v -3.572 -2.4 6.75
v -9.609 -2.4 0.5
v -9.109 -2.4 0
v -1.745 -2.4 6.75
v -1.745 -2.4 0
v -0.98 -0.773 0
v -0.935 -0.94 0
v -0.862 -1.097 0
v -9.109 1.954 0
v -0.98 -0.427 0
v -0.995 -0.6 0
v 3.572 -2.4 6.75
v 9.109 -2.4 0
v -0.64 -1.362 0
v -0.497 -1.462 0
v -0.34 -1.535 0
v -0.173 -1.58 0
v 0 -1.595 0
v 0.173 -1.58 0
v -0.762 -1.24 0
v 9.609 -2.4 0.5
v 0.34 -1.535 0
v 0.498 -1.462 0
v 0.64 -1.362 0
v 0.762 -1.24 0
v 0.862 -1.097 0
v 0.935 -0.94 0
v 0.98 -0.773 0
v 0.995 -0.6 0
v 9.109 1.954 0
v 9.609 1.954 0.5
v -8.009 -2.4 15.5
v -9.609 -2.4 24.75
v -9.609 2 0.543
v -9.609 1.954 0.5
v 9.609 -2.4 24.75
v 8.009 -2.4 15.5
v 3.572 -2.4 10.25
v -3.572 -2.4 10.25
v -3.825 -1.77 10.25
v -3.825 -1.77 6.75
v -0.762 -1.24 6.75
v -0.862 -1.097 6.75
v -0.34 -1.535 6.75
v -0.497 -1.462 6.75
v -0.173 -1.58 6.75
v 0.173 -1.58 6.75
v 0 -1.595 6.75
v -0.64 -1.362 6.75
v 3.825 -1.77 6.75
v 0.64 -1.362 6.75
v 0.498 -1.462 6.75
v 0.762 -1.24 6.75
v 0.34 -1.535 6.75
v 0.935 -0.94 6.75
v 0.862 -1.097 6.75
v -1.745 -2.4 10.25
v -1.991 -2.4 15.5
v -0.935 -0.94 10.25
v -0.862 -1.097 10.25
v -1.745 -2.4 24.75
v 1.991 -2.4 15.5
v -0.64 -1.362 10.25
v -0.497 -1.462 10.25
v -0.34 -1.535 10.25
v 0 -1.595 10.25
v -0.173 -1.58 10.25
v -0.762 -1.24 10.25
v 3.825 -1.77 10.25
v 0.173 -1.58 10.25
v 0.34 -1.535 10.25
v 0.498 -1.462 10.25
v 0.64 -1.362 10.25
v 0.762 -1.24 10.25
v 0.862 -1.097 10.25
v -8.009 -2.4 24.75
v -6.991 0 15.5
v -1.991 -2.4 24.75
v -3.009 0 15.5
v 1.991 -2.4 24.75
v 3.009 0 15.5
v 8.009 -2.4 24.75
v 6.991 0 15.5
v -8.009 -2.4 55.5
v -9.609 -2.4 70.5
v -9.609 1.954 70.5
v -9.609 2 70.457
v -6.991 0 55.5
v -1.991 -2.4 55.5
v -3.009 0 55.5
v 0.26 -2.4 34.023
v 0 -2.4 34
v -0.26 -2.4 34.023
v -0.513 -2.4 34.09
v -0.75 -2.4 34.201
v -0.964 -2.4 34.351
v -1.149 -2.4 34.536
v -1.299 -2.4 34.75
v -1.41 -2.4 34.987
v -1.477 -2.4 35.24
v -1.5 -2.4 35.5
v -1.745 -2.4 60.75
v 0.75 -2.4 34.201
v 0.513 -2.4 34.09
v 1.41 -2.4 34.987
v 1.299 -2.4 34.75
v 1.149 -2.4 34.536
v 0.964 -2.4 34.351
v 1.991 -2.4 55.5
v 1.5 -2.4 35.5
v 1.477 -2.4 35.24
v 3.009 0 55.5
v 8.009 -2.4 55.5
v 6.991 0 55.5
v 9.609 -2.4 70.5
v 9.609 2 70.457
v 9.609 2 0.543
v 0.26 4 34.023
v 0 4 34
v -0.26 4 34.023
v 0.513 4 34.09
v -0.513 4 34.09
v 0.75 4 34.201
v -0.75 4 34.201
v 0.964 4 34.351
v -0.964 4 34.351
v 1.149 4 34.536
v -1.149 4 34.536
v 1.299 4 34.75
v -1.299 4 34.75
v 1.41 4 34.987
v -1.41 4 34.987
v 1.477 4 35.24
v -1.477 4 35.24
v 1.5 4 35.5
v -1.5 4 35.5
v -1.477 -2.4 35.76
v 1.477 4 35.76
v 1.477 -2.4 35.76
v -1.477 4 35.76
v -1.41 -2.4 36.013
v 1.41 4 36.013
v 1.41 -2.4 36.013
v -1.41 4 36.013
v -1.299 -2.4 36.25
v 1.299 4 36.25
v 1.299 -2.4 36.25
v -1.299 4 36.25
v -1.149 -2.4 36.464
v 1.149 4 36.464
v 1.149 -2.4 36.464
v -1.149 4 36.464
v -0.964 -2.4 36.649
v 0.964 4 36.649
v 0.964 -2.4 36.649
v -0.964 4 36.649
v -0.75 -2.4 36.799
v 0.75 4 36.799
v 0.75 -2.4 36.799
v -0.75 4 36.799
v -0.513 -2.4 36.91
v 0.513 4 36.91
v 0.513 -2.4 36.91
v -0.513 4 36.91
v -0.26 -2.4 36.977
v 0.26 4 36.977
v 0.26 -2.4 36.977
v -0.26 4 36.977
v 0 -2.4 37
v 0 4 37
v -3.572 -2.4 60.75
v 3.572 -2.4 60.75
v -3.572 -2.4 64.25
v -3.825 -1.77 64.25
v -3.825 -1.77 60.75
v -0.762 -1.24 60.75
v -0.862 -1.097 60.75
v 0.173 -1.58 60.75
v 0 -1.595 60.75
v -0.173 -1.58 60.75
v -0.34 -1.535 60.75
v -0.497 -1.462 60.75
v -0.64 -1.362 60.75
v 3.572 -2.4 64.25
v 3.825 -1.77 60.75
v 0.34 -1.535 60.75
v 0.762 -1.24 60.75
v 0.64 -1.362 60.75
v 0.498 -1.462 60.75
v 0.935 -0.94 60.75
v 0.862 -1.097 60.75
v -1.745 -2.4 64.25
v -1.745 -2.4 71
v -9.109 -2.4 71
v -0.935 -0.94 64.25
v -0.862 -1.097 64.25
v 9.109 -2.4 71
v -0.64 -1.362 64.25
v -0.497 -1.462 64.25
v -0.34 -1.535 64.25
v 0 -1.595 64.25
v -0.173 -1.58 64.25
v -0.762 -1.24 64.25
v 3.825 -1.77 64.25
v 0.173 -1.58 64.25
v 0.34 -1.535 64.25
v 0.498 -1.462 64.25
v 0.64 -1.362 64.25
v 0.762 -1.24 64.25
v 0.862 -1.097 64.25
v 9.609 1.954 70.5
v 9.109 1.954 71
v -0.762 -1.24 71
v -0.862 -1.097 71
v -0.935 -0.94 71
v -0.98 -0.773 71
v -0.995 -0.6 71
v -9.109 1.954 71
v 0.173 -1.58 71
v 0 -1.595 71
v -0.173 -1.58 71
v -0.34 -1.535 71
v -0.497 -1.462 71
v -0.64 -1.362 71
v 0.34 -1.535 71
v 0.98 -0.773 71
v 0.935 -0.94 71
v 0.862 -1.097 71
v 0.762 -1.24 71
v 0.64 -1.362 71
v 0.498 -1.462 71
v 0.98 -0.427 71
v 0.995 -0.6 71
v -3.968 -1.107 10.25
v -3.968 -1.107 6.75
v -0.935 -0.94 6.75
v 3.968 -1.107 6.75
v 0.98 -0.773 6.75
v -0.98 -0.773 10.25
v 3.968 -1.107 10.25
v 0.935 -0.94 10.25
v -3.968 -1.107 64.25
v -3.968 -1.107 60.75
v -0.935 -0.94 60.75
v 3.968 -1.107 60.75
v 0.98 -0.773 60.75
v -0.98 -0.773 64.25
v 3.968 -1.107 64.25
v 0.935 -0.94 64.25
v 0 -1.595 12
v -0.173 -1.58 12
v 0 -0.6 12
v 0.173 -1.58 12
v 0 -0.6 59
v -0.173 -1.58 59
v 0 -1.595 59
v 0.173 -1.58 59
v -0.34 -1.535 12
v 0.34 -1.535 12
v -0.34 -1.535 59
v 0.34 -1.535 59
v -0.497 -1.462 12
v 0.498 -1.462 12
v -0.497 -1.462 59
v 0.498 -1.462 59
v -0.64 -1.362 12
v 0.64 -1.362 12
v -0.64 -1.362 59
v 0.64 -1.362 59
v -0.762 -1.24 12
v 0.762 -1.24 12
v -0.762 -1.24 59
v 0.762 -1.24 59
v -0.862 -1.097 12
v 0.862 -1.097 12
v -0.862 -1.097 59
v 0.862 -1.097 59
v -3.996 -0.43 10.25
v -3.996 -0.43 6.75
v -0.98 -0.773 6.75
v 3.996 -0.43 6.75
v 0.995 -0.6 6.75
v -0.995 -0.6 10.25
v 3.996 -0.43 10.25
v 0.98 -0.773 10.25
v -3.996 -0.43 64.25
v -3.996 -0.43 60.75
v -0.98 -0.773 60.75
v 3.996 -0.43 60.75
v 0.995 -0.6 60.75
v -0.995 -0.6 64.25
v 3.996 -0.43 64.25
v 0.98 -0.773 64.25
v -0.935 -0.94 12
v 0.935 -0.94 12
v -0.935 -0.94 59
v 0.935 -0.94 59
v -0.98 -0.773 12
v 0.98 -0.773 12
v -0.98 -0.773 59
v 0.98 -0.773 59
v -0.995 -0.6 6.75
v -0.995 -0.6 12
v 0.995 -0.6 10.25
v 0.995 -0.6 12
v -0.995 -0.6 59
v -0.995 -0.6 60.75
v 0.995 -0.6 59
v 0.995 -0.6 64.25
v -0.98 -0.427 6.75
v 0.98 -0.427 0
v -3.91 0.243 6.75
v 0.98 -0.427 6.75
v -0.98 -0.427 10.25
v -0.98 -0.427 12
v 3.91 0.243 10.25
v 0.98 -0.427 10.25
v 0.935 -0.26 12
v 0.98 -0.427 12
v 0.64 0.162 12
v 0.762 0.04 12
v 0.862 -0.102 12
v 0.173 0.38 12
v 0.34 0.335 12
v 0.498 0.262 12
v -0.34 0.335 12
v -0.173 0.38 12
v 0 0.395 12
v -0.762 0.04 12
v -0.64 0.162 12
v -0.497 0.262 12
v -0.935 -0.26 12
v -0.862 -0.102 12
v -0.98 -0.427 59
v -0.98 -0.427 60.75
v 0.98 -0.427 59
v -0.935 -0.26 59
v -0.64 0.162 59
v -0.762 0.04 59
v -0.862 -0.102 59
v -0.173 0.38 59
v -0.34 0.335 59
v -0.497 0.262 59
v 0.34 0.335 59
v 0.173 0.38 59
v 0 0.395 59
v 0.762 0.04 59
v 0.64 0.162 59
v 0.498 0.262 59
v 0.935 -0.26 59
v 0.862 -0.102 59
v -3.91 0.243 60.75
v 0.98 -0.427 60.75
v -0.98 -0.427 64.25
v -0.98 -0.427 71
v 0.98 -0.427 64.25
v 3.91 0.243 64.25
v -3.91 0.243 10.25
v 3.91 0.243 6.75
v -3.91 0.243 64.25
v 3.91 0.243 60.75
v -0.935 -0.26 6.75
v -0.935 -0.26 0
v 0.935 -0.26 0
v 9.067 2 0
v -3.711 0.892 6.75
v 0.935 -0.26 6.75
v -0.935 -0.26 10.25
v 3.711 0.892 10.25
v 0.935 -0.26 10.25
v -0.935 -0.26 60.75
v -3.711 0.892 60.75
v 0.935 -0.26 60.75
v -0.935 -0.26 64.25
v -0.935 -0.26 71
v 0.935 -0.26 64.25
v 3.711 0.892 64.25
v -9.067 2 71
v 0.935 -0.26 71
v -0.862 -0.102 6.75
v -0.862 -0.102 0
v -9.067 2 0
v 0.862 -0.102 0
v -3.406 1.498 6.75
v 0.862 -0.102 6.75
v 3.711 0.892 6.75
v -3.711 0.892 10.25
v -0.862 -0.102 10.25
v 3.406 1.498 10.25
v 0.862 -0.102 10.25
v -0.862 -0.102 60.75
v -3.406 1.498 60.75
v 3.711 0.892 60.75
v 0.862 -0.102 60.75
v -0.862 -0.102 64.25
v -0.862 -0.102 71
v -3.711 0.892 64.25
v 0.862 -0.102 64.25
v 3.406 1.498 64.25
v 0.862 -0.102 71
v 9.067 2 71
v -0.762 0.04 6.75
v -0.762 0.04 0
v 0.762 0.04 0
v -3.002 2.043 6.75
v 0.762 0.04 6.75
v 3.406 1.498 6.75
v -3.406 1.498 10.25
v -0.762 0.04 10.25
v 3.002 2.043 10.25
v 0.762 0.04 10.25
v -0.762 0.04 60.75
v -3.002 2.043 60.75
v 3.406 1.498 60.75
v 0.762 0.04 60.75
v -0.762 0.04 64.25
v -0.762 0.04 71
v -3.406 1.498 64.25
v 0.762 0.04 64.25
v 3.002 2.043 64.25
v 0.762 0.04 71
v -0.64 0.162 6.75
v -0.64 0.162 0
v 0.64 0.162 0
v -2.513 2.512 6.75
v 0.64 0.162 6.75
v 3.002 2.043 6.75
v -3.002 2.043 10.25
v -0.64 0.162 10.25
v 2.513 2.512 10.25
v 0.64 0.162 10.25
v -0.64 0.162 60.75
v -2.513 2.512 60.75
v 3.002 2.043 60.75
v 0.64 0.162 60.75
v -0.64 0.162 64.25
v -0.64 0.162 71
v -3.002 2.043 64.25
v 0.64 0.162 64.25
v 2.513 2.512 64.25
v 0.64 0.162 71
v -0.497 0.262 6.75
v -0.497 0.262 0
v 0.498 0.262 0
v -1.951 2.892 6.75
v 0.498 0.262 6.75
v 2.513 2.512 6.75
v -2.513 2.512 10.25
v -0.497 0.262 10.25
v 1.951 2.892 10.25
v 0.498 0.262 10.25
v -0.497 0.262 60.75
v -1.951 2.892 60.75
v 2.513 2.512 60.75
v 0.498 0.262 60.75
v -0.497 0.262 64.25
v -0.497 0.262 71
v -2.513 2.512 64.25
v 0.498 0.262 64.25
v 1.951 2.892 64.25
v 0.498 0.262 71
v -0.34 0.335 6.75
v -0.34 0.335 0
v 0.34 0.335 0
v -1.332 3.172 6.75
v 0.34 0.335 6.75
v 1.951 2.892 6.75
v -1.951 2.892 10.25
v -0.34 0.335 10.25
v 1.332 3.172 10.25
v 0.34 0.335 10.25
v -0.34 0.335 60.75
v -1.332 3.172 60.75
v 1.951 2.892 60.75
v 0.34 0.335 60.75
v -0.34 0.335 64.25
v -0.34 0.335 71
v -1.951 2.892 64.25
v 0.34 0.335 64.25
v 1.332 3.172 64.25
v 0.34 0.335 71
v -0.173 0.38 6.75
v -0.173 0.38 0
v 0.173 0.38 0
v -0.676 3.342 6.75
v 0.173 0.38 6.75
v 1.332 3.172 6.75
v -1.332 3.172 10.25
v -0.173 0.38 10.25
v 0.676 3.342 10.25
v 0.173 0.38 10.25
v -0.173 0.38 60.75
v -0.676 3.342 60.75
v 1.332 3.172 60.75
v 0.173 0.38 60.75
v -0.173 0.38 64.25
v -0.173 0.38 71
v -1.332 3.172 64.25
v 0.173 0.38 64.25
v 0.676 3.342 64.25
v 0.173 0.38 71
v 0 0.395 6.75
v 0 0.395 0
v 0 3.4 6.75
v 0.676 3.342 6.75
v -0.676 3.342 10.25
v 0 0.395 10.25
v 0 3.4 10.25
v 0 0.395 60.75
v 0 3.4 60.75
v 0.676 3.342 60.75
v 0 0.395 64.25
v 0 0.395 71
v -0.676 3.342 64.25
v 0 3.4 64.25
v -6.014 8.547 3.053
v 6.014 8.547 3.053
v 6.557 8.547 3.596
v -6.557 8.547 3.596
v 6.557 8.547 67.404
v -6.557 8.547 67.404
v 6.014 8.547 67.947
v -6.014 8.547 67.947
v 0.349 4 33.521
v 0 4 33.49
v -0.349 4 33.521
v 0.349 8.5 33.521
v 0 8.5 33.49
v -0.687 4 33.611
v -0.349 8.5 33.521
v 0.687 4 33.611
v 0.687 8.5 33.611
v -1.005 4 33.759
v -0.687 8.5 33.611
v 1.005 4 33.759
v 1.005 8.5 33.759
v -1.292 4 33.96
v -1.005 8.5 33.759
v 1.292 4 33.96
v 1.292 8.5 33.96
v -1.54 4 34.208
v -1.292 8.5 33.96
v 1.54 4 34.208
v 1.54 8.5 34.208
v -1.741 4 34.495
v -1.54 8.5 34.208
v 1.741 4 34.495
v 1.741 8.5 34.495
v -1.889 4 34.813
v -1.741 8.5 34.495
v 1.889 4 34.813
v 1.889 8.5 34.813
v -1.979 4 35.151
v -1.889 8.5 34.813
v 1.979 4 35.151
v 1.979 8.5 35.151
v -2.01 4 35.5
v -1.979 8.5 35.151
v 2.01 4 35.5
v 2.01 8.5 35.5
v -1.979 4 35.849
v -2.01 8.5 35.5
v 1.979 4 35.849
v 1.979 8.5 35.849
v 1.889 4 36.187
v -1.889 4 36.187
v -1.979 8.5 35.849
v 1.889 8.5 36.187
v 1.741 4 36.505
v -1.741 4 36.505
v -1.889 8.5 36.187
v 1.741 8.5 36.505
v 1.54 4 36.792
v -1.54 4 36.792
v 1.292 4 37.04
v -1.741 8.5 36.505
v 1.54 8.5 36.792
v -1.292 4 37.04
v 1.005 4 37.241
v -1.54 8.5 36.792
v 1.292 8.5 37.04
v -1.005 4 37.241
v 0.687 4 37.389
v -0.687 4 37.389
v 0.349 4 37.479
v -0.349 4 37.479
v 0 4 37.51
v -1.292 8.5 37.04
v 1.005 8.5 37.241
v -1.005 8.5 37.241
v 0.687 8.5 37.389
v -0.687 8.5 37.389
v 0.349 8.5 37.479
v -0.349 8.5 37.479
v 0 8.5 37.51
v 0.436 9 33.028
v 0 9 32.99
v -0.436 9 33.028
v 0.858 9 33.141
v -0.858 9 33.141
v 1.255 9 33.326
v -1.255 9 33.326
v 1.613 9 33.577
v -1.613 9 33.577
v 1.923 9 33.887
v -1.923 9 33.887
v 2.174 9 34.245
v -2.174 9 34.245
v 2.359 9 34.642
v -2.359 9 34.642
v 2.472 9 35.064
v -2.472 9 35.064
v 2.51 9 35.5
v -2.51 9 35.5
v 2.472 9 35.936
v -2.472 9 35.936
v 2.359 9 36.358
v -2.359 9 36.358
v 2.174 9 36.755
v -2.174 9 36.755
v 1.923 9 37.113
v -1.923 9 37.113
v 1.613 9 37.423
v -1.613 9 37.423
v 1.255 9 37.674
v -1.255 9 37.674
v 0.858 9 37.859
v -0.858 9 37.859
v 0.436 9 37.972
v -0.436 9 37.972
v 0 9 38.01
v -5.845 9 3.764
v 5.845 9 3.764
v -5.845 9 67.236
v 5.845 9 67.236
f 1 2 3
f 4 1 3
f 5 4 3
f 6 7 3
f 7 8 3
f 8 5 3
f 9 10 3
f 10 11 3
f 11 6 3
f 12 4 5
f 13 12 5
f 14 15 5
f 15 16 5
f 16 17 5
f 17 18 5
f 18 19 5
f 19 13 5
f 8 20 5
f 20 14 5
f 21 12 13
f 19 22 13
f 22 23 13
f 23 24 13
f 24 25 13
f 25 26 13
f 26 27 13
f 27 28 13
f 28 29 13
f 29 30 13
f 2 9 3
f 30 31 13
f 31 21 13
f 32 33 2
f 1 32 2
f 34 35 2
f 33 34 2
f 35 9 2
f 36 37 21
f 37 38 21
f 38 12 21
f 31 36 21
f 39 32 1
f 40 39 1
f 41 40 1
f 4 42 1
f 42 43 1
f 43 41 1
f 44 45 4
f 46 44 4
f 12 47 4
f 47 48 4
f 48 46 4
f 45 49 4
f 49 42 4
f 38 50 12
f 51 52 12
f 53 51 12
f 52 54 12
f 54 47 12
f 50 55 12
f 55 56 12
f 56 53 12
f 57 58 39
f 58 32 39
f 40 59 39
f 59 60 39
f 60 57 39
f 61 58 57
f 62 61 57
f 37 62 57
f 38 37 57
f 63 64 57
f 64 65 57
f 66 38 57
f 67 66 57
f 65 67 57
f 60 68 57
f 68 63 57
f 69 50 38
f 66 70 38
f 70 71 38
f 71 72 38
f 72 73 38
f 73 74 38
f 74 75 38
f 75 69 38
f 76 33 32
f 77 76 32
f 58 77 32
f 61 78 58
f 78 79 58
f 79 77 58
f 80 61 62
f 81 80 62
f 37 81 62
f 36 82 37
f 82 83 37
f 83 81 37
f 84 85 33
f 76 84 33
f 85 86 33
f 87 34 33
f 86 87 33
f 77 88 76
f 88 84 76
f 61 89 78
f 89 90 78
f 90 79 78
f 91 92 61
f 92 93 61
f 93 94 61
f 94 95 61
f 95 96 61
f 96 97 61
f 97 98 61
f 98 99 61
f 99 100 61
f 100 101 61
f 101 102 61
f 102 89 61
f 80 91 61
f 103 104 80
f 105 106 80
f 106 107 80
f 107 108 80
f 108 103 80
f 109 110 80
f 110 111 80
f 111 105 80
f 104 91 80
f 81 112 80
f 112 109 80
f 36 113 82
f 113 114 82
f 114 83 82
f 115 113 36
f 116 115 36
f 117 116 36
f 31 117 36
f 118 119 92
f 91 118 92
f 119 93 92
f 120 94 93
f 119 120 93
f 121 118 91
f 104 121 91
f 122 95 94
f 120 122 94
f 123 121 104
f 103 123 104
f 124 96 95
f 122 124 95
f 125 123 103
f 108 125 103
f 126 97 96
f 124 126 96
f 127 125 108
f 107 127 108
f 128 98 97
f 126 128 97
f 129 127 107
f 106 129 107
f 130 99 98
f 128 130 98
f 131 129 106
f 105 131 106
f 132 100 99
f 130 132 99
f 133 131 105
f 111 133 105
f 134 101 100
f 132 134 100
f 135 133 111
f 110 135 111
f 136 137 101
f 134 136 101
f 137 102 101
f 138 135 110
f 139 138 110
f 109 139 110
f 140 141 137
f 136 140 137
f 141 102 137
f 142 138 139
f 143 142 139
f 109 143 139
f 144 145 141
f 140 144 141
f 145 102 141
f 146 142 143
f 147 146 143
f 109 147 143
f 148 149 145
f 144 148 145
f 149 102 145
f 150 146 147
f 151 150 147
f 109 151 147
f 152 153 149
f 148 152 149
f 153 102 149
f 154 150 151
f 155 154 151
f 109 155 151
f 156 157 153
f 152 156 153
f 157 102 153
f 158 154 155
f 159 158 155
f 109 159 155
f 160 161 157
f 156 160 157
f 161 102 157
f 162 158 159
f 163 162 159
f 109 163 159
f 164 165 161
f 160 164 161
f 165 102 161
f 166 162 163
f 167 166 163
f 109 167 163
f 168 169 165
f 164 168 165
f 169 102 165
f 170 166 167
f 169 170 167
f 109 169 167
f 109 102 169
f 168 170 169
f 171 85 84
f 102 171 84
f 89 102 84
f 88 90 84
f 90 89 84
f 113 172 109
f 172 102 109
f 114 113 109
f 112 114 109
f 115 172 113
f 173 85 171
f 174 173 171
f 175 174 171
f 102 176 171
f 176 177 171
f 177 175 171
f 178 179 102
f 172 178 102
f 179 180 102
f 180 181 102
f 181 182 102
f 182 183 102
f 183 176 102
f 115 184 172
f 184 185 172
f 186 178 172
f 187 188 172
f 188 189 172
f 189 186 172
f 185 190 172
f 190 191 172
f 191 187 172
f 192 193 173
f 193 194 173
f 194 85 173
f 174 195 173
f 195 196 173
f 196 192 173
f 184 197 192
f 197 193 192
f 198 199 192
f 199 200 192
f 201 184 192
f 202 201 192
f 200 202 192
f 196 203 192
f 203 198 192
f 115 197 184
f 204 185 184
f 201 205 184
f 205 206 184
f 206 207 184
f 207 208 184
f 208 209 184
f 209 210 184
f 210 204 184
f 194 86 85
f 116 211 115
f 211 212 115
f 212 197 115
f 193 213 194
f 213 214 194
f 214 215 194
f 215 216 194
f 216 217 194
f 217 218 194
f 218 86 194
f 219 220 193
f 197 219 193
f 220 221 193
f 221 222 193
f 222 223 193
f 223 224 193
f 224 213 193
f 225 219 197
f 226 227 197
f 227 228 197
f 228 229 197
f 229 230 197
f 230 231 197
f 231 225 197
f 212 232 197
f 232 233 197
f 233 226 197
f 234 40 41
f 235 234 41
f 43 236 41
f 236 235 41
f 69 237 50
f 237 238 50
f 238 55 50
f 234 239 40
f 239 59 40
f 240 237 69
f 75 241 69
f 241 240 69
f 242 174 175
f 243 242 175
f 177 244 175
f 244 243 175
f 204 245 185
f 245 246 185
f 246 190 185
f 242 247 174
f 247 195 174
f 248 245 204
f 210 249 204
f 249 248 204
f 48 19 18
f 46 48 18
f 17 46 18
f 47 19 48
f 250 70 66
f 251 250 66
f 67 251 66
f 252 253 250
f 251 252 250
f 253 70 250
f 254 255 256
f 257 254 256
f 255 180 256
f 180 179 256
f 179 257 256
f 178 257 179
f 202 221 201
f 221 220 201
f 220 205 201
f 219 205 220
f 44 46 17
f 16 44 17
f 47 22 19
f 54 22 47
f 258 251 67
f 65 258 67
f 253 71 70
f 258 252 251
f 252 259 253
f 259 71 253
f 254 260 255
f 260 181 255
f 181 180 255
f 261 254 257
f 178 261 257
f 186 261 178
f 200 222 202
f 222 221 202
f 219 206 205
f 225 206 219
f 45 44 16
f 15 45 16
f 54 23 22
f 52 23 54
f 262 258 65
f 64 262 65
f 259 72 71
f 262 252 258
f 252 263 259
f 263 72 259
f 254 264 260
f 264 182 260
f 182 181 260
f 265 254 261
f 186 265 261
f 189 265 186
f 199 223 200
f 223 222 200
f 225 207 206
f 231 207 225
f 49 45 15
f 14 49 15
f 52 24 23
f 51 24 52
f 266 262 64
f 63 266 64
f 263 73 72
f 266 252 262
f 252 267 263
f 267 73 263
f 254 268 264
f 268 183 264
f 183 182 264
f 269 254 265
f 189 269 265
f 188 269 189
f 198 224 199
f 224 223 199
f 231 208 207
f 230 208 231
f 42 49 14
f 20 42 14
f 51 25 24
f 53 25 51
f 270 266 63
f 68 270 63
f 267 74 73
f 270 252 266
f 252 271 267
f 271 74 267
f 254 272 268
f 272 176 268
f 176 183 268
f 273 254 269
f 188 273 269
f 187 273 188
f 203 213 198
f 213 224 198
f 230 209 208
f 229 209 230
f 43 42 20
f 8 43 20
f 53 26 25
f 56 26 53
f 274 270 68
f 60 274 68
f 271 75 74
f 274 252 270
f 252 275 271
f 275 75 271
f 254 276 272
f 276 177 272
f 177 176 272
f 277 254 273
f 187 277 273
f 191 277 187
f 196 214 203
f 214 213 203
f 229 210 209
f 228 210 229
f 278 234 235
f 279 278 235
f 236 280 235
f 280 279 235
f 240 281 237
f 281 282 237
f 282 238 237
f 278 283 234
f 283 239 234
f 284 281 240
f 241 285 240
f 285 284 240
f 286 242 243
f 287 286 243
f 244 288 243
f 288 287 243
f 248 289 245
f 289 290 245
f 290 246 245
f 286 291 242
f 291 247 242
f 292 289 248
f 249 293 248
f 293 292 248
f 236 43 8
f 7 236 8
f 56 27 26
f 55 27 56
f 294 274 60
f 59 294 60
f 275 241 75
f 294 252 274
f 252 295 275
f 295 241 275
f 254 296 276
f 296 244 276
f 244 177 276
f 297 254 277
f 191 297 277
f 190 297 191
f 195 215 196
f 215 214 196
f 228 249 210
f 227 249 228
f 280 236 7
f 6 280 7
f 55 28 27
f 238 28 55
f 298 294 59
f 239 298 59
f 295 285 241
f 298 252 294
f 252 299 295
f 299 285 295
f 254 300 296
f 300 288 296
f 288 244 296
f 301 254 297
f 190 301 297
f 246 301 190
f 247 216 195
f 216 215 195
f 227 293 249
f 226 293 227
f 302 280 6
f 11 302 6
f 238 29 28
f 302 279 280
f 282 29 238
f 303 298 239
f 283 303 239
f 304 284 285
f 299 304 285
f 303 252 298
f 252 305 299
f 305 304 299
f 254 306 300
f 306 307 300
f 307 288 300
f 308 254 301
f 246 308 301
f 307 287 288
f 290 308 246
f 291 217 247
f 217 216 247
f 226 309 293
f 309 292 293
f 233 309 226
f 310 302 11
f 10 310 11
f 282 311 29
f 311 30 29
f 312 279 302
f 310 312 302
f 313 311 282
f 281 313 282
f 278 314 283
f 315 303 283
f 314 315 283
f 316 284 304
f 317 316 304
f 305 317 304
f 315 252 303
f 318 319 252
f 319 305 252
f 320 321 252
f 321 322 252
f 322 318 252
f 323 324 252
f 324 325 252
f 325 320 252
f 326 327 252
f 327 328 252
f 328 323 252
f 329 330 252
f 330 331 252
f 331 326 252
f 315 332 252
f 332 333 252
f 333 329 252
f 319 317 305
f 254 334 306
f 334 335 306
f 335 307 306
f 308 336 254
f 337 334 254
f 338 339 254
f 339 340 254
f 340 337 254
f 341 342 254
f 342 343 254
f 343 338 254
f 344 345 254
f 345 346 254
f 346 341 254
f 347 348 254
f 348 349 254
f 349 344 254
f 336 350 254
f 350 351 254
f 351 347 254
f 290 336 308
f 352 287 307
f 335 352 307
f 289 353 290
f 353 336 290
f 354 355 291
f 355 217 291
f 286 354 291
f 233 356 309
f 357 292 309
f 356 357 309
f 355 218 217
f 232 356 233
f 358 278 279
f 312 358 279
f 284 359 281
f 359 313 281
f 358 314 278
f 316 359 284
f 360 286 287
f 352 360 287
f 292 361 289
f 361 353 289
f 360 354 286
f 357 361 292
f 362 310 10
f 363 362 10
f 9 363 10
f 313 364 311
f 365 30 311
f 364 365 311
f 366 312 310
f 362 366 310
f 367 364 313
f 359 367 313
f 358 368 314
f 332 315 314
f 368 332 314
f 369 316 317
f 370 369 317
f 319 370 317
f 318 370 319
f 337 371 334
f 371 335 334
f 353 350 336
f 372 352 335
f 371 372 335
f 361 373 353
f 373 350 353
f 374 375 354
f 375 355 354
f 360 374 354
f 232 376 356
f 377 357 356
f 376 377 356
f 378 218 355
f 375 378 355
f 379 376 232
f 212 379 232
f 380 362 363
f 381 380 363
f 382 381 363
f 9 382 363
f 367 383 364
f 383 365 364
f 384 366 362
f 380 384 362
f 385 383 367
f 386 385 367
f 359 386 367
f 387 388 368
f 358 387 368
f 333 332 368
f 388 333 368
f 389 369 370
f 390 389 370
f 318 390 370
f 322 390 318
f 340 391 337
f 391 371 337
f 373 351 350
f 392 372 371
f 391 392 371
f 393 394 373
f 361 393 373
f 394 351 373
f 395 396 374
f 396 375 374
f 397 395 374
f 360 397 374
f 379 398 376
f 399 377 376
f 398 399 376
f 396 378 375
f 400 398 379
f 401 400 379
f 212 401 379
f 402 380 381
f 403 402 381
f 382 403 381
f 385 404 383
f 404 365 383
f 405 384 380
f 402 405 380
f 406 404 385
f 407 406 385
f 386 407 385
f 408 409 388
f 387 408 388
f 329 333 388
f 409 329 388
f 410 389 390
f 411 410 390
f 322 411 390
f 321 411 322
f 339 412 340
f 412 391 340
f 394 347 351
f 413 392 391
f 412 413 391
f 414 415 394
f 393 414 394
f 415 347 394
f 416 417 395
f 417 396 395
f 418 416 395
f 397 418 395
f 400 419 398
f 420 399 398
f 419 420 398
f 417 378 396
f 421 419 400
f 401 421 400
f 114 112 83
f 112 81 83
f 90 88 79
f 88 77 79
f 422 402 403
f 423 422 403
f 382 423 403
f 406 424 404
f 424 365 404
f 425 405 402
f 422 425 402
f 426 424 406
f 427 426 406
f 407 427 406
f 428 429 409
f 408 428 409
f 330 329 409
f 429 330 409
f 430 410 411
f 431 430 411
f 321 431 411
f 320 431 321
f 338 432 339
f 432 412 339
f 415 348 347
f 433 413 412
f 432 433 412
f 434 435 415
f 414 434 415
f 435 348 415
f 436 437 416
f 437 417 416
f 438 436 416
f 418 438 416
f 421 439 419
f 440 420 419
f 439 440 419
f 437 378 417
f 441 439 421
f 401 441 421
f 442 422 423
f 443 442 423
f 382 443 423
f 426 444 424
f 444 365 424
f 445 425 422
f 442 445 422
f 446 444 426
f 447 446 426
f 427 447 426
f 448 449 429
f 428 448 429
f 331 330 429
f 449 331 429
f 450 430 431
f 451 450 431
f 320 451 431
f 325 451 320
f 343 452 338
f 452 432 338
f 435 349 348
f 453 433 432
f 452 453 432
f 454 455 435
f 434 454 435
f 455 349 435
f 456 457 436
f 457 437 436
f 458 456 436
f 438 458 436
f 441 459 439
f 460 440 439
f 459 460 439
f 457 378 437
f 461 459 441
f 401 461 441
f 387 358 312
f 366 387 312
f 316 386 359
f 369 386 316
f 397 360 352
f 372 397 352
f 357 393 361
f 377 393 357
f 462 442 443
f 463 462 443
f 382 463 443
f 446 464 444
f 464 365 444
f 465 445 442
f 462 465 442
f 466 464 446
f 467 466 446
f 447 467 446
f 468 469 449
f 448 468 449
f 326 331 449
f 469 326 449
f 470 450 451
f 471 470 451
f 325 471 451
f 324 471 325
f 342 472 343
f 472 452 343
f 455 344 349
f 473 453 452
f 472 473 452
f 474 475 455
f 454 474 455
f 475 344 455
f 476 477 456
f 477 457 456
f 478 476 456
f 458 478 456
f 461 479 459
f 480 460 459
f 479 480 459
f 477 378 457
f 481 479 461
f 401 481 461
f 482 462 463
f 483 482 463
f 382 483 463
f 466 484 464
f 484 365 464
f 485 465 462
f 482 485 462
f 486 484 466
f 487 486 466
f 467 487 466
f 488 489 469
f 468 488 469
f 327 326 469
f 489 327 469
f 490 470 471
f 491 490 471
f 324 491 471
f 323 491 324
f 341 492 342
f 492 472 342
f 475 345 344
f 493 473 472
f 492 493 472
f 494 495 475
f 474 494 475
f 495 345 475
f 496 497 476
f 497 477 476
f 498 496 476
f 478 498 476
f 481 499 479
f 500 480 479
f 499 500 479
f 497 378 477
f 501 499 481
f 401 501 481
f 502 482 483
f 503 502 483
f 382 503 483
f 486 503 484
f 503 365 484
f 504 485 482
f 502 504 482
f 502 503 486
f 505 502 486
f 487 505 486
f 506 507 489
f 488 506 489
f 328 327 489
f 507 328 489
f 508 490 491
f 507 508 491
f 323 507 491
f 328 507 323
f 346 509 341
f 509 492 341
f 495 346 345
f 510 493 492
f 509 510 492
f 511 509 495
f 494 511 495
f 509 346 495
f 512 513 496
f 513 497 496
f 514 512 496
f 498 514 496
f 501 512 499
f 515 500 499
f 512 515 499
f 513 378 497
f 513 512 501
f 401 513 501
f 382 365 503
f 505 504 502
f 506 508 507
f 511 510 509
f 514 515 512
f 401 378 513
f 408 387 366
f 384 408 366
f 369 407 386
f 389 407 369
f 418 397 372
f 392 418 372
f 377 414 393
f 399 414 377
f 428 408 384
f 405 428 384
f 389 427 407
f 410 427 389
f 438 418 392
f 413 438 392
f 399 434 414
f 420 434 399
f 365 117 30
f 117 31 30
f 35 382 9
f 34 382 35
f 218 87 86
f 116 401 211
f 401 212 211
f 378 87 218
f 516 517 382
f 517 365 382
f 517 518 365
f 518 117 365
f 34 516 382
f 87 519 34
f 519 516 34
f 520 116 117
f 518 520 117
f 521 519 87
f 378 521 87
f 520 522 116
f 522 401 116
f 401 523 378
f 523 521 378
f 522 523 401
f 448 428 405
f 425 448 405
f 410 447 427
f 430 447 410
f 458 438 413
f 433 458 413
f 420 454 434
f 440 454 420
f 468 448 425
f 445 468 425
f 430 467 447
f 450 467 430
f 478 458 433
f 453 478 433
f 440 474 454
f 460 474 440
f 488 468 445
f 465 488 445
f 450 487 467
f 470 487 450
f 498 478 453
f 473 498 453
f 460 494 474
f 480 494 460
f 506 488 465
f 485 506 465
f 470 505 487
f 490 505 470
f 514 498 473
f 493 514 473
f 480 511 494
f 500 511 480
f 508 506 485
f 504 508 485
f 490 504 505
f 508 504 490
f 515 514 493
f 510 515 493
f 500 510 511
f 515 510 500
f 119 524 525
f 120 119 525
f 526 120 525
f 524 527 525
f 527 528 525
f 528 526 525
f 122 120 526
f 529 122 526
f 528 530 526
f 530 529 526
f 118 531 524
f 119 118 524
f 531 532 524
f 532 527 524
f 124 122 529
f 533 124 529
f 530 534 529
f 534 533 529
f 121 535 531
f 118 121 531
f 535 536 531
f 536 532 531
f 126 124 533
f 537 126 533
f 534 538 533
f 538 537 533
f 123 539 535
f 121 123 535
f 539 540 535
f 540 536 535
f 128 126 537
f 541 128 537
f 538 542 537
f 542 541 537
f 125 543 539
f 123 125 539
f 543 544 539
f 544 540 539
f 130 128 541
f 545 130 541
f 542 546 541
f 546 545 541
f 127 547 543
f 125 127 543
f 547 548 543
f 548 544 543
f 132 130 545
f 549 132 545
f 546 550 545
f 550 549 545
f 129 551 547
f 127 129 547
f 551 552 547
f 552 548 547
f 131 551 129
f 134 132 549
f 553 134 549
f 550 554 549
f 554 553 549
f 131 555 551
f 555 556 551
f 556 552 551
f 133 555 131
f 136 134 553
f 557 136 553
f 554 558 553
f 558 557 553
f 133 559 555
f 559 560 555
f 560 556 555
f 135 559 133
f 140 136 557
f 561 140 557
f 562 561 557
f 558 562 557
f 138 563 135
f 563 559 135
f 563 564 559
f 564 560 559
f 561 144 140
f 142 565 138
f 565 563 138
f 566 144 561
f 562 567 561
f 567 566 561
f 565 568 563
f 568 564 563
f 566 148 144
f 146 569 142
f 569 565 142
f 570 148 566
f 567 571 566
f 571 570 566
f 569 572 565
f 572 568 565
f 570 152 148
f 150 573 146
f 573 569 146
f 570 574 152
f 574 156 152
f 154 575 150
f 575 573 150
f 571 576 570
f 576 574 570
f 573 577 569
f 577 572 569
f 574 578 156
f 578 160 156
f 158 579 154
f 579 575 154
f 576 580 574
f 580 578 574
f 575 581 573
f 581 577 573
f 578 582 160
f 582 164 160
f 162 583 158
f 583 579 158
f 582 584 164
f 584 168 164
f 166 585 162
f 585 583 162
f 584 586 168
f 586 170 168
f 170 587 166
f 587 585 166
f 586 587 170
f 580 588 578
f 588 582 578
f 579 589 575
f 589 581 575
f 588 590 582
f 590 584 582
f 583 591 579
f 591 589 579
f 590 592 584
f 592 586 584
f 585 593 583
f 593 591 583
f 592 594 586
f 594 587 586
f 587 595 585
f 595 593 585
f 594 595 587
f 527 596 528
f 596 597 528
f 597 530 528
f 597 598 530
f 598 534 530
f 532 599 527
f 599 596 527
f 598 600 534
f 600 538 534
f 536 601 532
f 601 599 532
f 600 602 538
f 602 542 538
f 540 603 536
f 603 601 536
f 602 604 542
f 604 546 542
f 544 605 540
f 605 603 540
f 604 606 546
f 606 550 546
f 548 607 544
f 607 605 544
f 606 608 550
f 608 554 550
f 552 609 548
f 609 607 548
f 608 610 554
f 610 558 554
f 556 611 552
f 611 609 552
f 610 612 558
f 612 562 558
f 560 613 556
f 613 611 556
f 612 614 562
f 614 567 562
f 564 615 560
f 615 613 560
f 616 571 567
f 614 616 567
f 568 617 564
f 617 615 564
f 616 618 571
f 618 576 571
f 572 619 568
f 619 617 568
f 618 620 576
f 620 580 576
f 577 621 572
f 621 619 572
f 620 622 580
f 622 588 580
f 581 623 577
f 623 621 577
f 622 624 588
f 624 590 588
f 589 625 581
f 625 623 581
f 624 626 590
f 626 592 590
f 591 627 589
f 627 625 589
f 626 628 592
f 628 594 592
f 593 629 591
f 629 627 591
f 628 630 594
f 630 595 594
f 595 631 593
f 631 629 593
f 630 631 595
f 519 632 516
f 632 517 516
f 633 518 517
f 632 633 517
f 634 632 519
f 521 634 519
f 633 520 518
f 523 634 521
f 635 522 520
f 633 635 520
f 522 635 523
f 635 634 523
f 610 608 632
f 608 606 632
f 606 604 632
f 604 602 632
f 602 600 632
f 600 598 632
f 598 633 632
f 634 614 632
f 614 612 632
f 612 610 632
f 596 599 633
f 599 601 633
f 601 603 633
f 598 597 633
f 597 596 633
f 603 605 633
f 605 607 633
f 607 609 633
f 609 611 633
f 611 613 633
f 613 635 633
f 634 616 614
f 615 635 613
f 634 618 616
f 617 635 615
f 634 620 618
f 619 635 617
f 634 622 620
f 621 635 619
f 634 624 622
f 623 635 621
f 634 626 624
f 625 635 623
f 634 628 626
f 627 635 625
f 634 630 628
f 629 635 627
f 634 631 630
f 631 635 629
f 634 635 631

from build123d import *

# Parameters (mm, degrees)
EXTRUDE_1_DEPTH     = 71
CUT_EXTRUDE_1_DEPTH = 75.103710772
SKETCH_3_W          = 18.218739558
SKETCH_3_H          = 4.354088086
EXTRUDE_3_DEPTH     = 15.5
SKETCH_4_R          = 0.995
CUT_EXTRUDE_2_DEPTH = 12
SKETCH_5_W          = 4
SKETCH_5_H          = 3.5
SKETCH_6_R          = 1.5
CUT_EXTRUDE_3_DEPTH = 73.548604312
SKETCH_7_R          = 2.01
CUT_EXTRUDE_4_DEPTH = 5
CHAMFER_2_SIZE      = 0.5


with BuildPart() as part:
    # ｽｹｯﾁ1 → ﾎﾞｽ - 押し出し1 (new body)
    with BuildSketch(Plane.XY):
        Polygon((-6.990630221, 0), (-3.009369779, 0), (-1.990630221, -2.4), (1.990630221, -2.4), (3.009369779, 0), (6.990630221, 0), (8.009369779, -2.4), (9.609369779, -2.4), (9.609369779, 2), (6.345216172, 9), (-6.345216172, 9), (-9.609369779, 2), (-9.609369779, -2.4), (-8.009369779, -2.4), align=None)
    extrude(amount=EXTRUDE_1_DEPTH)

    # ｽｹｯﾁ2 → ｶｯﾄ - 押し出し1 (cut, through all)
    with BuildSketch(Plane(origin=(9.609369779, 0, 0), x_dir=(0, 0, -1), z_dir=(1, 0, 0))):
        Polygon((-71, 2), (-67.735846393, 9), (-71, 9), align=None)
        Polygon((-3.264153607, 9), (0, 9), (0, 2), align=None)
    extrude(amount=-CUT_EXTRUDE_1_DEPTH, mode=Mode.SUBTRACT)

    # 面取り1
    # the kernel refuses this chamfer: 0.5 mm, written as the material it takes off along each edge
    with BuildSketch(Plane(origin=(-6.138482875, 8.697897404, 3.470886905), x_dir=(0.1959067162203001, 0.5268881046463136, 0.8270486586180973), z_dir=(-0.41632572739388224, 0.8082980746110386, -0.4163257273938792)), Plane(origin=(6.138482875, 8.697897404, 3.470886905), x_dir=(-0.8270486586180952, 0.5268881046463165, 0.19590671622030123), z_dir=(0.4163257273938833, 0.8082980746110385, -0.41632572739387846))) as chamfer_1_piece_1:
        Polygon((-0.400884159, 0.228990916), (0.459173014, 0.228990916), (-0.058288855, -0.457981831), align=None)
    extrude(amount=0.4579583, mode=Mode.SUBTRACT)
    with BuildSketch(Plane(origin=(-6.138482875, 8.697897404, 67.529113095), x_dir=(-0.19590671622031064, -0.5268881046463169, 0.8270486586180926), z_dir=(-0.416325727393884, 0.808298074611038, 0.41632572739387863))) as chamfer_1_piece_2:
        Polygon((-0.459173014, 0.228990916), (0.400884159, 0.228990916), (0.058288855, -0.457981831), align=None)
    extrude(amount=0.4579583, mode=Mode.SUBTRACT)
    with BuildSketch(Plane(origin=(6.138482875, 8.697897404, 67.529113095), x_dir=(-0.8270486586180955, 0.5268881046463167, -0.19590671622029923), z_dir=(0.4163257273938827, 0.8082980746110371, 0.4163257273938819))) as chamfer_1_piece_3:
        Polygon((-0.400884159, -0.228990916), (0.459173014, -0.228990916), (-0.058288855, 0.457981831), align=None)
    extrude(amount=0.4579583, mode=Mode.SUBTRACT)
    with BuildSketch(Plane(origin=(9.609369779, -3.685841494, 71), x_dir=(-0.999621916911297, 0, 0.0274958766105822), z_dir=(0, 1, 0)), Plane(origin=(-9.609369779, 3.285841494, 71), x_dir=(0.999621916911297, 0, 0.0274958766105822), z_dir=(0, -1, 0))) as chamfer_1_piece_4:
        with BuildLine():
            Line((0.514336598, 0), (-0.028273577, -0.513558897))
            Line((-0.028273577, -0.513558897), (-0.038269797, -0.513283938))
            ThreePointArc((-0.038269797, -0.513283938), (-0.017064614, -0.256698915), (-0.009996219, 0.000274959))
            Line((-0.009996219, 0.000274959), (0.000274959, 0.009996219))
            ThreePointArc((0.000274959, 0.009996219), (0.257248832, 0.002927825), (0.514611556, 0.009996219))
            Line((0.514611556, 0.009996219), (0.514336598, 0))
        make_face()
    extrude(amount=6.971682988, mode=Mode.SUBTRACT)
    with BuildSketch(Plane(origin=(-9.609369779, 3.285841494, 0), x_dir=(0.9996219169112968, 0, -0.02749587661058639), z_dir=(0, -1, 0)), Plane(origin=(9.609369779, -3.685841494, 0), x_dir=(-0.9996219169112968, 0, -0.02749587661058639), z_dir=(0, 1, 0))) as chamfer_1_piece_5:
        with BuildLine():
            Line((0.514336598, 0), (-0.028273577, 0.513558897))
            Line((-0.028273577, 0.513558897), (-0.038269797, 0.513283938))
            ThreePointArc((-0.038269797, 0.513283938), (-0.017064614, 0.256698915), (-0.009996219, -0.000274959))
            Line((-0.009996219, -0.000274959), (0.000274959, -0.009996219))
            ThreePointArc((0.000274959, -0.009996219), (0.257248832, -0.002927825), (0.514611556, -0.009996219))
            Line((0.514611556, -0.009996219), (0.514336598, 0))
        make_face()
    extrude(amount=6.971682988, mode=Mode.SUBTRACT)
    with BuildSketch(Plane(origin=(-6.345216172, 9, 1.971704795), x_dir=(-0.441365564598093, -0.897327386401979, 0), z_dir=(0, 0, 1))) as chamfer_1_piece_6:
        with BuildLine():
            Line((0.516979525, 0), (-0.237770334, 0.459056747))
            Line((-0.237770334, 0.459056747), (-0.246743608, 0.454643091))
            ThreePointArc((-0.246743608, 0.454643091), (-0.123037104, 0.227486173), (-0.008973274, -0.004413656))
            Line((-0.008973274, -0.004413656), (0.000207861, -0.009997839))
            ThreePointArc((0.000207861, -0.009997839), (0.25858594, -0.004626004), (0.517187386, -0.009997839))
            Line((0.517187386, -0.009997839), (0.516979525, 0))
        make_face()
    extrude(amount=67.056590409, mode=Mode.SUBTRACT)
    with BuildSketch(Plane(origin=(6.345216172, 9, 1.971704795), x_dir=(0.441365564598093, -0.897327386401979, 0), z_dir=(0, 0, 1))) as chamfer_1_piece_7:
        with BuildLine():
            Line((0.516979525, 0), (-0.237770334, -0.459056747))
            Line((-0.237770334, -0.459056747), (-0.246743608, -0.454643091))
            ThreePointArc((-0.246743608, -0.454643091), (-0.123037104, -0.227486173), (-0.008973274, 0.004413656))
            Line((-0.008973274, 0.004413656), (0.000207861, 0.009997839))
            ThreePointArc((0.000207861, 0.009997839), (0.25858594, 0.004626004), (0.517187386, 0.009997839))
            Line((0.517187386, 0.009997839), (0.516979525, 0))
        make_face()
    extrude(amount=67.056590409, mode=Mode.SUBTRACT)
    with BuildSketch(Plane(origin=(7.637664984, 9, 67.735846393), x_dir=(0, -0.8973273864019788, 0.441365564598093), z_dir=(-1, 0, 0))) as chamfer_1_piece_8:
        with BuildLine():
            Line((0.516979525, 0), (-0.237770334, -0.459056747))
            Line((-0.237770334, -0.459056747), (-0.246743608, -0.454643091))
            ThreePointArc((-0.246743608, -0.454643091), (-0.123037104, -0.227486173), (-0.008973274, 0.004413656))
            Line((-0.008973274, 0.004413656), (0.000207861, 0.009997839))
            ThreePointArc((0.000207861, 0.009997839), (0.25858594, 0.004626004), (0.517187386, 0.009997839))
            Line((0.517187386, 0.009997839), (0.516979525, 0))
        make_face()
    extrude(amount=15.275329968, mode=Mode.SUBTRACT)
    with BuildSketch(Plane(origin=(5.843517245, 10.075896822, 67.234147465), x_dir=(-0.9208340423276119, -0.34219239318368305, 0.1870000869994816), z_dir=(0.38928162063502697, -0.8348171294789895, 0.3892816206350193)), Plane(origin=(-10.111068707, 0.924103178, 71.501698928), x_dir=(0.9208340423276127, -0.3421923931836955, 0.1870000869994551), z_dir=(0.3892816206350268, 0.8348171294789896, -0.38928162063501937))) as chamfer_1_piece_9:
        with BuildLine():
            Line((0.515512576, 0), (-0.117174183, 0.502019349))
            Line((-0.117174183, 0.502019349), (-0.126965941, 0.499989208))
            ThreePointArc((-0.126965941, 0.499989208), (-0.062103739, 0.250280562), (-0.009791758, -0.002030141))
            Line((-0.009791758, -0.002030141), (0.000248629, -0.009996909))
            ThreePointArc((0.000248629, -0.009996909), (0.257845581, -0.003590326), (0.515761205, -0.009996909))
            Line((0.515761205, -0.009996909), (0.515512576, 0))
        make_face()
    extrude(amount=10.962632798, mode=Mode.SUBTRACT)
    with BuildSketch(Plane(origin=(5.843517245, 10.075896822, 3.765852535), x_dir=(-0.9208340423276121, -0.3421923931836904, -0.18700008699946713), z_dir=(0.3892816206350273, -0.8348171294789902, -0.38928162063501737)), Plane(origin=(-10.111068707, 0.924103178, -0.501698928), x_dir=(0.9208340423276121, -0.3421923931836903, -0.18700008699946674), z_dir=(0.38928162063502714, 0.8348171294789903, 0.38928162063501737))) as chamfer_1_piece_10:
        with BuildLine():
            Line((0.515512576, 0), (-0.117174183, -0.502019349))
            Line((-0.117174183, -0.502019349), (-0.126965941, -0.499989208))
            ThreePointArc((-0.126965941, -0.499989208), (-0.062103739, -0.250280562), (-0.009791758, 0.002030141))
            Line((-0.009791758, 0.002030141), (0.000248629, 0.009996909))
            ThreePointArc((0.000248629, 0.009996909), (0.257845581, 0.003590326), (0.515761205, 0.009996909))
            Line((0.515761205, 0.009996909), (0.515512576, 0))
        make_face()
    extrude(amount=10.962632798, mode=Mode.SUBTRACT)
    with BuildSketch(Plane(origin=(7.637664984, 9, 3.264153607), x_dir=(0, -0.8973273864019832, -0.4413655645980848), z_dir=(-1, 0, 0))) as chamfer_1_piece_11:
        with BuildLine():
            Line((0.516979525, 0), (-0.237770334, 0.459056747))
            Line((-0.237770334, 0.459056747), (-0.246743608, 0.454643091))
            ThreePointArc((-0.246743608, 0.454643091), (-0.123037104, 0.227486173), (-0.008973274, -0.004413656))
            Line((-0.008973274, -0.004413656), (0.000207861, -0.009997839))
            ThreePointArc((0.000207861, -0.009997839), (0.25858594, -0.004626004), (0.517187386, -0.009997839))
            Line((0.517187386, -0.009997839), (0.516979525, 0))
        make_face()
    extrude(amount=15.275329968, mode=Mode.SUBTRACT)

    # ｽｹｯﾁ3 → ﾎﾞｽ - 押し出し3 (add)
    with BuildSketch(Plane.XY.offset(71)):
        with Locations((0, -0.222955957)):
            Rectangle(SKETCH_3_W, SKETCH_3_H)
    extrude_3 = extrude(amount=-EXTRUDE_3_DEPTH)

    # ｽｹｯﾁ4 → ｶｯﾄ - 押し出し2 (cut)
    with BuildSketch(Plane.XY.offset(71)):
        with Locations((0, -0.6)):
            Circle(SKETCH_4_R)
    cut_extrude_2 = extrude(amount=-CUT_EXTRUDE_2_DEPTH, mode=Mode.SUBTRACT)

    # ﾐﾗｰ1: ﾎﾞｽ - 押し出し3, ｶｯﾄ - 押し出し2 across plane
    add(extrude_3.mirror(Plane(origin=(0, 0, 35.5), x_dir=(1, 0, 0), z_dir=(0, 0, -1))))
    add(cut_extrude_2.mirror(Plane(origin=(0, 0, 35.5), x_dir=(1, 0, 0), z_dir=(0, 0, -1))), mode=Mode.SUBTRACT)

    # ｽｹｯﾁ5 → ｶｯﾄ - 回転1 (revolve, cut)
    with BuildSketch(Plane(origin=(0, -0.6, 0), x_dir=(1, 0, 0), z_dir=(0, 1, 0))):
        with Locations((2, -62.5)):
            Rectangle(SKETCH_5_W, SKETCH_5_H)
        with Locations((2, -8.5)):
            Rectangle(SKETCH_5_W, SKETCH_5_H)
    revolve(axis=Axis((0, -0.6, 59), (0, 0, 1)), mode=Mode.SUBTRACT)

    # ｽｹｯﾁ6 → ｶｯﾄ - 押し出し3 (cut, through all)
    with BuildSketch(Plane.XZ.offset(2.4)):
        with Locations(Location((0, 35.5, 0), (0, 0, 270))):
            Circle(SKETCH_6_R)
    extrude(amount=-CUT_EXTRUDE_3_DEPTH, mode=Mode.SUBTRACT)

    # ｽｹｯﾁ7 → ｶｯﾄ - 押し出し4 (cut)
    with BuildSketch(Plane(origin=(0, 9, 0), x_dir=(1, 0, 0), z_dir=(0, 1, 0))):
        with Locations(Location((0, -35.5, 0), (0, 0, 180))):
            Circle(SKETCH_7_R)
    extrude(amount=-CUT_EXTRUDE_4_DEPTH, mode=Mode.SUBTRACT)

    # 面取り2
    chamfer_2_edges = [part.edges().sort_by_distance(p)[0] for p in [
        (2.01, 9, 35.5),
    ]]
    chamfer(chamfer_2_edges, length=CHAMFER_2_SIZE)


solid = part.part
